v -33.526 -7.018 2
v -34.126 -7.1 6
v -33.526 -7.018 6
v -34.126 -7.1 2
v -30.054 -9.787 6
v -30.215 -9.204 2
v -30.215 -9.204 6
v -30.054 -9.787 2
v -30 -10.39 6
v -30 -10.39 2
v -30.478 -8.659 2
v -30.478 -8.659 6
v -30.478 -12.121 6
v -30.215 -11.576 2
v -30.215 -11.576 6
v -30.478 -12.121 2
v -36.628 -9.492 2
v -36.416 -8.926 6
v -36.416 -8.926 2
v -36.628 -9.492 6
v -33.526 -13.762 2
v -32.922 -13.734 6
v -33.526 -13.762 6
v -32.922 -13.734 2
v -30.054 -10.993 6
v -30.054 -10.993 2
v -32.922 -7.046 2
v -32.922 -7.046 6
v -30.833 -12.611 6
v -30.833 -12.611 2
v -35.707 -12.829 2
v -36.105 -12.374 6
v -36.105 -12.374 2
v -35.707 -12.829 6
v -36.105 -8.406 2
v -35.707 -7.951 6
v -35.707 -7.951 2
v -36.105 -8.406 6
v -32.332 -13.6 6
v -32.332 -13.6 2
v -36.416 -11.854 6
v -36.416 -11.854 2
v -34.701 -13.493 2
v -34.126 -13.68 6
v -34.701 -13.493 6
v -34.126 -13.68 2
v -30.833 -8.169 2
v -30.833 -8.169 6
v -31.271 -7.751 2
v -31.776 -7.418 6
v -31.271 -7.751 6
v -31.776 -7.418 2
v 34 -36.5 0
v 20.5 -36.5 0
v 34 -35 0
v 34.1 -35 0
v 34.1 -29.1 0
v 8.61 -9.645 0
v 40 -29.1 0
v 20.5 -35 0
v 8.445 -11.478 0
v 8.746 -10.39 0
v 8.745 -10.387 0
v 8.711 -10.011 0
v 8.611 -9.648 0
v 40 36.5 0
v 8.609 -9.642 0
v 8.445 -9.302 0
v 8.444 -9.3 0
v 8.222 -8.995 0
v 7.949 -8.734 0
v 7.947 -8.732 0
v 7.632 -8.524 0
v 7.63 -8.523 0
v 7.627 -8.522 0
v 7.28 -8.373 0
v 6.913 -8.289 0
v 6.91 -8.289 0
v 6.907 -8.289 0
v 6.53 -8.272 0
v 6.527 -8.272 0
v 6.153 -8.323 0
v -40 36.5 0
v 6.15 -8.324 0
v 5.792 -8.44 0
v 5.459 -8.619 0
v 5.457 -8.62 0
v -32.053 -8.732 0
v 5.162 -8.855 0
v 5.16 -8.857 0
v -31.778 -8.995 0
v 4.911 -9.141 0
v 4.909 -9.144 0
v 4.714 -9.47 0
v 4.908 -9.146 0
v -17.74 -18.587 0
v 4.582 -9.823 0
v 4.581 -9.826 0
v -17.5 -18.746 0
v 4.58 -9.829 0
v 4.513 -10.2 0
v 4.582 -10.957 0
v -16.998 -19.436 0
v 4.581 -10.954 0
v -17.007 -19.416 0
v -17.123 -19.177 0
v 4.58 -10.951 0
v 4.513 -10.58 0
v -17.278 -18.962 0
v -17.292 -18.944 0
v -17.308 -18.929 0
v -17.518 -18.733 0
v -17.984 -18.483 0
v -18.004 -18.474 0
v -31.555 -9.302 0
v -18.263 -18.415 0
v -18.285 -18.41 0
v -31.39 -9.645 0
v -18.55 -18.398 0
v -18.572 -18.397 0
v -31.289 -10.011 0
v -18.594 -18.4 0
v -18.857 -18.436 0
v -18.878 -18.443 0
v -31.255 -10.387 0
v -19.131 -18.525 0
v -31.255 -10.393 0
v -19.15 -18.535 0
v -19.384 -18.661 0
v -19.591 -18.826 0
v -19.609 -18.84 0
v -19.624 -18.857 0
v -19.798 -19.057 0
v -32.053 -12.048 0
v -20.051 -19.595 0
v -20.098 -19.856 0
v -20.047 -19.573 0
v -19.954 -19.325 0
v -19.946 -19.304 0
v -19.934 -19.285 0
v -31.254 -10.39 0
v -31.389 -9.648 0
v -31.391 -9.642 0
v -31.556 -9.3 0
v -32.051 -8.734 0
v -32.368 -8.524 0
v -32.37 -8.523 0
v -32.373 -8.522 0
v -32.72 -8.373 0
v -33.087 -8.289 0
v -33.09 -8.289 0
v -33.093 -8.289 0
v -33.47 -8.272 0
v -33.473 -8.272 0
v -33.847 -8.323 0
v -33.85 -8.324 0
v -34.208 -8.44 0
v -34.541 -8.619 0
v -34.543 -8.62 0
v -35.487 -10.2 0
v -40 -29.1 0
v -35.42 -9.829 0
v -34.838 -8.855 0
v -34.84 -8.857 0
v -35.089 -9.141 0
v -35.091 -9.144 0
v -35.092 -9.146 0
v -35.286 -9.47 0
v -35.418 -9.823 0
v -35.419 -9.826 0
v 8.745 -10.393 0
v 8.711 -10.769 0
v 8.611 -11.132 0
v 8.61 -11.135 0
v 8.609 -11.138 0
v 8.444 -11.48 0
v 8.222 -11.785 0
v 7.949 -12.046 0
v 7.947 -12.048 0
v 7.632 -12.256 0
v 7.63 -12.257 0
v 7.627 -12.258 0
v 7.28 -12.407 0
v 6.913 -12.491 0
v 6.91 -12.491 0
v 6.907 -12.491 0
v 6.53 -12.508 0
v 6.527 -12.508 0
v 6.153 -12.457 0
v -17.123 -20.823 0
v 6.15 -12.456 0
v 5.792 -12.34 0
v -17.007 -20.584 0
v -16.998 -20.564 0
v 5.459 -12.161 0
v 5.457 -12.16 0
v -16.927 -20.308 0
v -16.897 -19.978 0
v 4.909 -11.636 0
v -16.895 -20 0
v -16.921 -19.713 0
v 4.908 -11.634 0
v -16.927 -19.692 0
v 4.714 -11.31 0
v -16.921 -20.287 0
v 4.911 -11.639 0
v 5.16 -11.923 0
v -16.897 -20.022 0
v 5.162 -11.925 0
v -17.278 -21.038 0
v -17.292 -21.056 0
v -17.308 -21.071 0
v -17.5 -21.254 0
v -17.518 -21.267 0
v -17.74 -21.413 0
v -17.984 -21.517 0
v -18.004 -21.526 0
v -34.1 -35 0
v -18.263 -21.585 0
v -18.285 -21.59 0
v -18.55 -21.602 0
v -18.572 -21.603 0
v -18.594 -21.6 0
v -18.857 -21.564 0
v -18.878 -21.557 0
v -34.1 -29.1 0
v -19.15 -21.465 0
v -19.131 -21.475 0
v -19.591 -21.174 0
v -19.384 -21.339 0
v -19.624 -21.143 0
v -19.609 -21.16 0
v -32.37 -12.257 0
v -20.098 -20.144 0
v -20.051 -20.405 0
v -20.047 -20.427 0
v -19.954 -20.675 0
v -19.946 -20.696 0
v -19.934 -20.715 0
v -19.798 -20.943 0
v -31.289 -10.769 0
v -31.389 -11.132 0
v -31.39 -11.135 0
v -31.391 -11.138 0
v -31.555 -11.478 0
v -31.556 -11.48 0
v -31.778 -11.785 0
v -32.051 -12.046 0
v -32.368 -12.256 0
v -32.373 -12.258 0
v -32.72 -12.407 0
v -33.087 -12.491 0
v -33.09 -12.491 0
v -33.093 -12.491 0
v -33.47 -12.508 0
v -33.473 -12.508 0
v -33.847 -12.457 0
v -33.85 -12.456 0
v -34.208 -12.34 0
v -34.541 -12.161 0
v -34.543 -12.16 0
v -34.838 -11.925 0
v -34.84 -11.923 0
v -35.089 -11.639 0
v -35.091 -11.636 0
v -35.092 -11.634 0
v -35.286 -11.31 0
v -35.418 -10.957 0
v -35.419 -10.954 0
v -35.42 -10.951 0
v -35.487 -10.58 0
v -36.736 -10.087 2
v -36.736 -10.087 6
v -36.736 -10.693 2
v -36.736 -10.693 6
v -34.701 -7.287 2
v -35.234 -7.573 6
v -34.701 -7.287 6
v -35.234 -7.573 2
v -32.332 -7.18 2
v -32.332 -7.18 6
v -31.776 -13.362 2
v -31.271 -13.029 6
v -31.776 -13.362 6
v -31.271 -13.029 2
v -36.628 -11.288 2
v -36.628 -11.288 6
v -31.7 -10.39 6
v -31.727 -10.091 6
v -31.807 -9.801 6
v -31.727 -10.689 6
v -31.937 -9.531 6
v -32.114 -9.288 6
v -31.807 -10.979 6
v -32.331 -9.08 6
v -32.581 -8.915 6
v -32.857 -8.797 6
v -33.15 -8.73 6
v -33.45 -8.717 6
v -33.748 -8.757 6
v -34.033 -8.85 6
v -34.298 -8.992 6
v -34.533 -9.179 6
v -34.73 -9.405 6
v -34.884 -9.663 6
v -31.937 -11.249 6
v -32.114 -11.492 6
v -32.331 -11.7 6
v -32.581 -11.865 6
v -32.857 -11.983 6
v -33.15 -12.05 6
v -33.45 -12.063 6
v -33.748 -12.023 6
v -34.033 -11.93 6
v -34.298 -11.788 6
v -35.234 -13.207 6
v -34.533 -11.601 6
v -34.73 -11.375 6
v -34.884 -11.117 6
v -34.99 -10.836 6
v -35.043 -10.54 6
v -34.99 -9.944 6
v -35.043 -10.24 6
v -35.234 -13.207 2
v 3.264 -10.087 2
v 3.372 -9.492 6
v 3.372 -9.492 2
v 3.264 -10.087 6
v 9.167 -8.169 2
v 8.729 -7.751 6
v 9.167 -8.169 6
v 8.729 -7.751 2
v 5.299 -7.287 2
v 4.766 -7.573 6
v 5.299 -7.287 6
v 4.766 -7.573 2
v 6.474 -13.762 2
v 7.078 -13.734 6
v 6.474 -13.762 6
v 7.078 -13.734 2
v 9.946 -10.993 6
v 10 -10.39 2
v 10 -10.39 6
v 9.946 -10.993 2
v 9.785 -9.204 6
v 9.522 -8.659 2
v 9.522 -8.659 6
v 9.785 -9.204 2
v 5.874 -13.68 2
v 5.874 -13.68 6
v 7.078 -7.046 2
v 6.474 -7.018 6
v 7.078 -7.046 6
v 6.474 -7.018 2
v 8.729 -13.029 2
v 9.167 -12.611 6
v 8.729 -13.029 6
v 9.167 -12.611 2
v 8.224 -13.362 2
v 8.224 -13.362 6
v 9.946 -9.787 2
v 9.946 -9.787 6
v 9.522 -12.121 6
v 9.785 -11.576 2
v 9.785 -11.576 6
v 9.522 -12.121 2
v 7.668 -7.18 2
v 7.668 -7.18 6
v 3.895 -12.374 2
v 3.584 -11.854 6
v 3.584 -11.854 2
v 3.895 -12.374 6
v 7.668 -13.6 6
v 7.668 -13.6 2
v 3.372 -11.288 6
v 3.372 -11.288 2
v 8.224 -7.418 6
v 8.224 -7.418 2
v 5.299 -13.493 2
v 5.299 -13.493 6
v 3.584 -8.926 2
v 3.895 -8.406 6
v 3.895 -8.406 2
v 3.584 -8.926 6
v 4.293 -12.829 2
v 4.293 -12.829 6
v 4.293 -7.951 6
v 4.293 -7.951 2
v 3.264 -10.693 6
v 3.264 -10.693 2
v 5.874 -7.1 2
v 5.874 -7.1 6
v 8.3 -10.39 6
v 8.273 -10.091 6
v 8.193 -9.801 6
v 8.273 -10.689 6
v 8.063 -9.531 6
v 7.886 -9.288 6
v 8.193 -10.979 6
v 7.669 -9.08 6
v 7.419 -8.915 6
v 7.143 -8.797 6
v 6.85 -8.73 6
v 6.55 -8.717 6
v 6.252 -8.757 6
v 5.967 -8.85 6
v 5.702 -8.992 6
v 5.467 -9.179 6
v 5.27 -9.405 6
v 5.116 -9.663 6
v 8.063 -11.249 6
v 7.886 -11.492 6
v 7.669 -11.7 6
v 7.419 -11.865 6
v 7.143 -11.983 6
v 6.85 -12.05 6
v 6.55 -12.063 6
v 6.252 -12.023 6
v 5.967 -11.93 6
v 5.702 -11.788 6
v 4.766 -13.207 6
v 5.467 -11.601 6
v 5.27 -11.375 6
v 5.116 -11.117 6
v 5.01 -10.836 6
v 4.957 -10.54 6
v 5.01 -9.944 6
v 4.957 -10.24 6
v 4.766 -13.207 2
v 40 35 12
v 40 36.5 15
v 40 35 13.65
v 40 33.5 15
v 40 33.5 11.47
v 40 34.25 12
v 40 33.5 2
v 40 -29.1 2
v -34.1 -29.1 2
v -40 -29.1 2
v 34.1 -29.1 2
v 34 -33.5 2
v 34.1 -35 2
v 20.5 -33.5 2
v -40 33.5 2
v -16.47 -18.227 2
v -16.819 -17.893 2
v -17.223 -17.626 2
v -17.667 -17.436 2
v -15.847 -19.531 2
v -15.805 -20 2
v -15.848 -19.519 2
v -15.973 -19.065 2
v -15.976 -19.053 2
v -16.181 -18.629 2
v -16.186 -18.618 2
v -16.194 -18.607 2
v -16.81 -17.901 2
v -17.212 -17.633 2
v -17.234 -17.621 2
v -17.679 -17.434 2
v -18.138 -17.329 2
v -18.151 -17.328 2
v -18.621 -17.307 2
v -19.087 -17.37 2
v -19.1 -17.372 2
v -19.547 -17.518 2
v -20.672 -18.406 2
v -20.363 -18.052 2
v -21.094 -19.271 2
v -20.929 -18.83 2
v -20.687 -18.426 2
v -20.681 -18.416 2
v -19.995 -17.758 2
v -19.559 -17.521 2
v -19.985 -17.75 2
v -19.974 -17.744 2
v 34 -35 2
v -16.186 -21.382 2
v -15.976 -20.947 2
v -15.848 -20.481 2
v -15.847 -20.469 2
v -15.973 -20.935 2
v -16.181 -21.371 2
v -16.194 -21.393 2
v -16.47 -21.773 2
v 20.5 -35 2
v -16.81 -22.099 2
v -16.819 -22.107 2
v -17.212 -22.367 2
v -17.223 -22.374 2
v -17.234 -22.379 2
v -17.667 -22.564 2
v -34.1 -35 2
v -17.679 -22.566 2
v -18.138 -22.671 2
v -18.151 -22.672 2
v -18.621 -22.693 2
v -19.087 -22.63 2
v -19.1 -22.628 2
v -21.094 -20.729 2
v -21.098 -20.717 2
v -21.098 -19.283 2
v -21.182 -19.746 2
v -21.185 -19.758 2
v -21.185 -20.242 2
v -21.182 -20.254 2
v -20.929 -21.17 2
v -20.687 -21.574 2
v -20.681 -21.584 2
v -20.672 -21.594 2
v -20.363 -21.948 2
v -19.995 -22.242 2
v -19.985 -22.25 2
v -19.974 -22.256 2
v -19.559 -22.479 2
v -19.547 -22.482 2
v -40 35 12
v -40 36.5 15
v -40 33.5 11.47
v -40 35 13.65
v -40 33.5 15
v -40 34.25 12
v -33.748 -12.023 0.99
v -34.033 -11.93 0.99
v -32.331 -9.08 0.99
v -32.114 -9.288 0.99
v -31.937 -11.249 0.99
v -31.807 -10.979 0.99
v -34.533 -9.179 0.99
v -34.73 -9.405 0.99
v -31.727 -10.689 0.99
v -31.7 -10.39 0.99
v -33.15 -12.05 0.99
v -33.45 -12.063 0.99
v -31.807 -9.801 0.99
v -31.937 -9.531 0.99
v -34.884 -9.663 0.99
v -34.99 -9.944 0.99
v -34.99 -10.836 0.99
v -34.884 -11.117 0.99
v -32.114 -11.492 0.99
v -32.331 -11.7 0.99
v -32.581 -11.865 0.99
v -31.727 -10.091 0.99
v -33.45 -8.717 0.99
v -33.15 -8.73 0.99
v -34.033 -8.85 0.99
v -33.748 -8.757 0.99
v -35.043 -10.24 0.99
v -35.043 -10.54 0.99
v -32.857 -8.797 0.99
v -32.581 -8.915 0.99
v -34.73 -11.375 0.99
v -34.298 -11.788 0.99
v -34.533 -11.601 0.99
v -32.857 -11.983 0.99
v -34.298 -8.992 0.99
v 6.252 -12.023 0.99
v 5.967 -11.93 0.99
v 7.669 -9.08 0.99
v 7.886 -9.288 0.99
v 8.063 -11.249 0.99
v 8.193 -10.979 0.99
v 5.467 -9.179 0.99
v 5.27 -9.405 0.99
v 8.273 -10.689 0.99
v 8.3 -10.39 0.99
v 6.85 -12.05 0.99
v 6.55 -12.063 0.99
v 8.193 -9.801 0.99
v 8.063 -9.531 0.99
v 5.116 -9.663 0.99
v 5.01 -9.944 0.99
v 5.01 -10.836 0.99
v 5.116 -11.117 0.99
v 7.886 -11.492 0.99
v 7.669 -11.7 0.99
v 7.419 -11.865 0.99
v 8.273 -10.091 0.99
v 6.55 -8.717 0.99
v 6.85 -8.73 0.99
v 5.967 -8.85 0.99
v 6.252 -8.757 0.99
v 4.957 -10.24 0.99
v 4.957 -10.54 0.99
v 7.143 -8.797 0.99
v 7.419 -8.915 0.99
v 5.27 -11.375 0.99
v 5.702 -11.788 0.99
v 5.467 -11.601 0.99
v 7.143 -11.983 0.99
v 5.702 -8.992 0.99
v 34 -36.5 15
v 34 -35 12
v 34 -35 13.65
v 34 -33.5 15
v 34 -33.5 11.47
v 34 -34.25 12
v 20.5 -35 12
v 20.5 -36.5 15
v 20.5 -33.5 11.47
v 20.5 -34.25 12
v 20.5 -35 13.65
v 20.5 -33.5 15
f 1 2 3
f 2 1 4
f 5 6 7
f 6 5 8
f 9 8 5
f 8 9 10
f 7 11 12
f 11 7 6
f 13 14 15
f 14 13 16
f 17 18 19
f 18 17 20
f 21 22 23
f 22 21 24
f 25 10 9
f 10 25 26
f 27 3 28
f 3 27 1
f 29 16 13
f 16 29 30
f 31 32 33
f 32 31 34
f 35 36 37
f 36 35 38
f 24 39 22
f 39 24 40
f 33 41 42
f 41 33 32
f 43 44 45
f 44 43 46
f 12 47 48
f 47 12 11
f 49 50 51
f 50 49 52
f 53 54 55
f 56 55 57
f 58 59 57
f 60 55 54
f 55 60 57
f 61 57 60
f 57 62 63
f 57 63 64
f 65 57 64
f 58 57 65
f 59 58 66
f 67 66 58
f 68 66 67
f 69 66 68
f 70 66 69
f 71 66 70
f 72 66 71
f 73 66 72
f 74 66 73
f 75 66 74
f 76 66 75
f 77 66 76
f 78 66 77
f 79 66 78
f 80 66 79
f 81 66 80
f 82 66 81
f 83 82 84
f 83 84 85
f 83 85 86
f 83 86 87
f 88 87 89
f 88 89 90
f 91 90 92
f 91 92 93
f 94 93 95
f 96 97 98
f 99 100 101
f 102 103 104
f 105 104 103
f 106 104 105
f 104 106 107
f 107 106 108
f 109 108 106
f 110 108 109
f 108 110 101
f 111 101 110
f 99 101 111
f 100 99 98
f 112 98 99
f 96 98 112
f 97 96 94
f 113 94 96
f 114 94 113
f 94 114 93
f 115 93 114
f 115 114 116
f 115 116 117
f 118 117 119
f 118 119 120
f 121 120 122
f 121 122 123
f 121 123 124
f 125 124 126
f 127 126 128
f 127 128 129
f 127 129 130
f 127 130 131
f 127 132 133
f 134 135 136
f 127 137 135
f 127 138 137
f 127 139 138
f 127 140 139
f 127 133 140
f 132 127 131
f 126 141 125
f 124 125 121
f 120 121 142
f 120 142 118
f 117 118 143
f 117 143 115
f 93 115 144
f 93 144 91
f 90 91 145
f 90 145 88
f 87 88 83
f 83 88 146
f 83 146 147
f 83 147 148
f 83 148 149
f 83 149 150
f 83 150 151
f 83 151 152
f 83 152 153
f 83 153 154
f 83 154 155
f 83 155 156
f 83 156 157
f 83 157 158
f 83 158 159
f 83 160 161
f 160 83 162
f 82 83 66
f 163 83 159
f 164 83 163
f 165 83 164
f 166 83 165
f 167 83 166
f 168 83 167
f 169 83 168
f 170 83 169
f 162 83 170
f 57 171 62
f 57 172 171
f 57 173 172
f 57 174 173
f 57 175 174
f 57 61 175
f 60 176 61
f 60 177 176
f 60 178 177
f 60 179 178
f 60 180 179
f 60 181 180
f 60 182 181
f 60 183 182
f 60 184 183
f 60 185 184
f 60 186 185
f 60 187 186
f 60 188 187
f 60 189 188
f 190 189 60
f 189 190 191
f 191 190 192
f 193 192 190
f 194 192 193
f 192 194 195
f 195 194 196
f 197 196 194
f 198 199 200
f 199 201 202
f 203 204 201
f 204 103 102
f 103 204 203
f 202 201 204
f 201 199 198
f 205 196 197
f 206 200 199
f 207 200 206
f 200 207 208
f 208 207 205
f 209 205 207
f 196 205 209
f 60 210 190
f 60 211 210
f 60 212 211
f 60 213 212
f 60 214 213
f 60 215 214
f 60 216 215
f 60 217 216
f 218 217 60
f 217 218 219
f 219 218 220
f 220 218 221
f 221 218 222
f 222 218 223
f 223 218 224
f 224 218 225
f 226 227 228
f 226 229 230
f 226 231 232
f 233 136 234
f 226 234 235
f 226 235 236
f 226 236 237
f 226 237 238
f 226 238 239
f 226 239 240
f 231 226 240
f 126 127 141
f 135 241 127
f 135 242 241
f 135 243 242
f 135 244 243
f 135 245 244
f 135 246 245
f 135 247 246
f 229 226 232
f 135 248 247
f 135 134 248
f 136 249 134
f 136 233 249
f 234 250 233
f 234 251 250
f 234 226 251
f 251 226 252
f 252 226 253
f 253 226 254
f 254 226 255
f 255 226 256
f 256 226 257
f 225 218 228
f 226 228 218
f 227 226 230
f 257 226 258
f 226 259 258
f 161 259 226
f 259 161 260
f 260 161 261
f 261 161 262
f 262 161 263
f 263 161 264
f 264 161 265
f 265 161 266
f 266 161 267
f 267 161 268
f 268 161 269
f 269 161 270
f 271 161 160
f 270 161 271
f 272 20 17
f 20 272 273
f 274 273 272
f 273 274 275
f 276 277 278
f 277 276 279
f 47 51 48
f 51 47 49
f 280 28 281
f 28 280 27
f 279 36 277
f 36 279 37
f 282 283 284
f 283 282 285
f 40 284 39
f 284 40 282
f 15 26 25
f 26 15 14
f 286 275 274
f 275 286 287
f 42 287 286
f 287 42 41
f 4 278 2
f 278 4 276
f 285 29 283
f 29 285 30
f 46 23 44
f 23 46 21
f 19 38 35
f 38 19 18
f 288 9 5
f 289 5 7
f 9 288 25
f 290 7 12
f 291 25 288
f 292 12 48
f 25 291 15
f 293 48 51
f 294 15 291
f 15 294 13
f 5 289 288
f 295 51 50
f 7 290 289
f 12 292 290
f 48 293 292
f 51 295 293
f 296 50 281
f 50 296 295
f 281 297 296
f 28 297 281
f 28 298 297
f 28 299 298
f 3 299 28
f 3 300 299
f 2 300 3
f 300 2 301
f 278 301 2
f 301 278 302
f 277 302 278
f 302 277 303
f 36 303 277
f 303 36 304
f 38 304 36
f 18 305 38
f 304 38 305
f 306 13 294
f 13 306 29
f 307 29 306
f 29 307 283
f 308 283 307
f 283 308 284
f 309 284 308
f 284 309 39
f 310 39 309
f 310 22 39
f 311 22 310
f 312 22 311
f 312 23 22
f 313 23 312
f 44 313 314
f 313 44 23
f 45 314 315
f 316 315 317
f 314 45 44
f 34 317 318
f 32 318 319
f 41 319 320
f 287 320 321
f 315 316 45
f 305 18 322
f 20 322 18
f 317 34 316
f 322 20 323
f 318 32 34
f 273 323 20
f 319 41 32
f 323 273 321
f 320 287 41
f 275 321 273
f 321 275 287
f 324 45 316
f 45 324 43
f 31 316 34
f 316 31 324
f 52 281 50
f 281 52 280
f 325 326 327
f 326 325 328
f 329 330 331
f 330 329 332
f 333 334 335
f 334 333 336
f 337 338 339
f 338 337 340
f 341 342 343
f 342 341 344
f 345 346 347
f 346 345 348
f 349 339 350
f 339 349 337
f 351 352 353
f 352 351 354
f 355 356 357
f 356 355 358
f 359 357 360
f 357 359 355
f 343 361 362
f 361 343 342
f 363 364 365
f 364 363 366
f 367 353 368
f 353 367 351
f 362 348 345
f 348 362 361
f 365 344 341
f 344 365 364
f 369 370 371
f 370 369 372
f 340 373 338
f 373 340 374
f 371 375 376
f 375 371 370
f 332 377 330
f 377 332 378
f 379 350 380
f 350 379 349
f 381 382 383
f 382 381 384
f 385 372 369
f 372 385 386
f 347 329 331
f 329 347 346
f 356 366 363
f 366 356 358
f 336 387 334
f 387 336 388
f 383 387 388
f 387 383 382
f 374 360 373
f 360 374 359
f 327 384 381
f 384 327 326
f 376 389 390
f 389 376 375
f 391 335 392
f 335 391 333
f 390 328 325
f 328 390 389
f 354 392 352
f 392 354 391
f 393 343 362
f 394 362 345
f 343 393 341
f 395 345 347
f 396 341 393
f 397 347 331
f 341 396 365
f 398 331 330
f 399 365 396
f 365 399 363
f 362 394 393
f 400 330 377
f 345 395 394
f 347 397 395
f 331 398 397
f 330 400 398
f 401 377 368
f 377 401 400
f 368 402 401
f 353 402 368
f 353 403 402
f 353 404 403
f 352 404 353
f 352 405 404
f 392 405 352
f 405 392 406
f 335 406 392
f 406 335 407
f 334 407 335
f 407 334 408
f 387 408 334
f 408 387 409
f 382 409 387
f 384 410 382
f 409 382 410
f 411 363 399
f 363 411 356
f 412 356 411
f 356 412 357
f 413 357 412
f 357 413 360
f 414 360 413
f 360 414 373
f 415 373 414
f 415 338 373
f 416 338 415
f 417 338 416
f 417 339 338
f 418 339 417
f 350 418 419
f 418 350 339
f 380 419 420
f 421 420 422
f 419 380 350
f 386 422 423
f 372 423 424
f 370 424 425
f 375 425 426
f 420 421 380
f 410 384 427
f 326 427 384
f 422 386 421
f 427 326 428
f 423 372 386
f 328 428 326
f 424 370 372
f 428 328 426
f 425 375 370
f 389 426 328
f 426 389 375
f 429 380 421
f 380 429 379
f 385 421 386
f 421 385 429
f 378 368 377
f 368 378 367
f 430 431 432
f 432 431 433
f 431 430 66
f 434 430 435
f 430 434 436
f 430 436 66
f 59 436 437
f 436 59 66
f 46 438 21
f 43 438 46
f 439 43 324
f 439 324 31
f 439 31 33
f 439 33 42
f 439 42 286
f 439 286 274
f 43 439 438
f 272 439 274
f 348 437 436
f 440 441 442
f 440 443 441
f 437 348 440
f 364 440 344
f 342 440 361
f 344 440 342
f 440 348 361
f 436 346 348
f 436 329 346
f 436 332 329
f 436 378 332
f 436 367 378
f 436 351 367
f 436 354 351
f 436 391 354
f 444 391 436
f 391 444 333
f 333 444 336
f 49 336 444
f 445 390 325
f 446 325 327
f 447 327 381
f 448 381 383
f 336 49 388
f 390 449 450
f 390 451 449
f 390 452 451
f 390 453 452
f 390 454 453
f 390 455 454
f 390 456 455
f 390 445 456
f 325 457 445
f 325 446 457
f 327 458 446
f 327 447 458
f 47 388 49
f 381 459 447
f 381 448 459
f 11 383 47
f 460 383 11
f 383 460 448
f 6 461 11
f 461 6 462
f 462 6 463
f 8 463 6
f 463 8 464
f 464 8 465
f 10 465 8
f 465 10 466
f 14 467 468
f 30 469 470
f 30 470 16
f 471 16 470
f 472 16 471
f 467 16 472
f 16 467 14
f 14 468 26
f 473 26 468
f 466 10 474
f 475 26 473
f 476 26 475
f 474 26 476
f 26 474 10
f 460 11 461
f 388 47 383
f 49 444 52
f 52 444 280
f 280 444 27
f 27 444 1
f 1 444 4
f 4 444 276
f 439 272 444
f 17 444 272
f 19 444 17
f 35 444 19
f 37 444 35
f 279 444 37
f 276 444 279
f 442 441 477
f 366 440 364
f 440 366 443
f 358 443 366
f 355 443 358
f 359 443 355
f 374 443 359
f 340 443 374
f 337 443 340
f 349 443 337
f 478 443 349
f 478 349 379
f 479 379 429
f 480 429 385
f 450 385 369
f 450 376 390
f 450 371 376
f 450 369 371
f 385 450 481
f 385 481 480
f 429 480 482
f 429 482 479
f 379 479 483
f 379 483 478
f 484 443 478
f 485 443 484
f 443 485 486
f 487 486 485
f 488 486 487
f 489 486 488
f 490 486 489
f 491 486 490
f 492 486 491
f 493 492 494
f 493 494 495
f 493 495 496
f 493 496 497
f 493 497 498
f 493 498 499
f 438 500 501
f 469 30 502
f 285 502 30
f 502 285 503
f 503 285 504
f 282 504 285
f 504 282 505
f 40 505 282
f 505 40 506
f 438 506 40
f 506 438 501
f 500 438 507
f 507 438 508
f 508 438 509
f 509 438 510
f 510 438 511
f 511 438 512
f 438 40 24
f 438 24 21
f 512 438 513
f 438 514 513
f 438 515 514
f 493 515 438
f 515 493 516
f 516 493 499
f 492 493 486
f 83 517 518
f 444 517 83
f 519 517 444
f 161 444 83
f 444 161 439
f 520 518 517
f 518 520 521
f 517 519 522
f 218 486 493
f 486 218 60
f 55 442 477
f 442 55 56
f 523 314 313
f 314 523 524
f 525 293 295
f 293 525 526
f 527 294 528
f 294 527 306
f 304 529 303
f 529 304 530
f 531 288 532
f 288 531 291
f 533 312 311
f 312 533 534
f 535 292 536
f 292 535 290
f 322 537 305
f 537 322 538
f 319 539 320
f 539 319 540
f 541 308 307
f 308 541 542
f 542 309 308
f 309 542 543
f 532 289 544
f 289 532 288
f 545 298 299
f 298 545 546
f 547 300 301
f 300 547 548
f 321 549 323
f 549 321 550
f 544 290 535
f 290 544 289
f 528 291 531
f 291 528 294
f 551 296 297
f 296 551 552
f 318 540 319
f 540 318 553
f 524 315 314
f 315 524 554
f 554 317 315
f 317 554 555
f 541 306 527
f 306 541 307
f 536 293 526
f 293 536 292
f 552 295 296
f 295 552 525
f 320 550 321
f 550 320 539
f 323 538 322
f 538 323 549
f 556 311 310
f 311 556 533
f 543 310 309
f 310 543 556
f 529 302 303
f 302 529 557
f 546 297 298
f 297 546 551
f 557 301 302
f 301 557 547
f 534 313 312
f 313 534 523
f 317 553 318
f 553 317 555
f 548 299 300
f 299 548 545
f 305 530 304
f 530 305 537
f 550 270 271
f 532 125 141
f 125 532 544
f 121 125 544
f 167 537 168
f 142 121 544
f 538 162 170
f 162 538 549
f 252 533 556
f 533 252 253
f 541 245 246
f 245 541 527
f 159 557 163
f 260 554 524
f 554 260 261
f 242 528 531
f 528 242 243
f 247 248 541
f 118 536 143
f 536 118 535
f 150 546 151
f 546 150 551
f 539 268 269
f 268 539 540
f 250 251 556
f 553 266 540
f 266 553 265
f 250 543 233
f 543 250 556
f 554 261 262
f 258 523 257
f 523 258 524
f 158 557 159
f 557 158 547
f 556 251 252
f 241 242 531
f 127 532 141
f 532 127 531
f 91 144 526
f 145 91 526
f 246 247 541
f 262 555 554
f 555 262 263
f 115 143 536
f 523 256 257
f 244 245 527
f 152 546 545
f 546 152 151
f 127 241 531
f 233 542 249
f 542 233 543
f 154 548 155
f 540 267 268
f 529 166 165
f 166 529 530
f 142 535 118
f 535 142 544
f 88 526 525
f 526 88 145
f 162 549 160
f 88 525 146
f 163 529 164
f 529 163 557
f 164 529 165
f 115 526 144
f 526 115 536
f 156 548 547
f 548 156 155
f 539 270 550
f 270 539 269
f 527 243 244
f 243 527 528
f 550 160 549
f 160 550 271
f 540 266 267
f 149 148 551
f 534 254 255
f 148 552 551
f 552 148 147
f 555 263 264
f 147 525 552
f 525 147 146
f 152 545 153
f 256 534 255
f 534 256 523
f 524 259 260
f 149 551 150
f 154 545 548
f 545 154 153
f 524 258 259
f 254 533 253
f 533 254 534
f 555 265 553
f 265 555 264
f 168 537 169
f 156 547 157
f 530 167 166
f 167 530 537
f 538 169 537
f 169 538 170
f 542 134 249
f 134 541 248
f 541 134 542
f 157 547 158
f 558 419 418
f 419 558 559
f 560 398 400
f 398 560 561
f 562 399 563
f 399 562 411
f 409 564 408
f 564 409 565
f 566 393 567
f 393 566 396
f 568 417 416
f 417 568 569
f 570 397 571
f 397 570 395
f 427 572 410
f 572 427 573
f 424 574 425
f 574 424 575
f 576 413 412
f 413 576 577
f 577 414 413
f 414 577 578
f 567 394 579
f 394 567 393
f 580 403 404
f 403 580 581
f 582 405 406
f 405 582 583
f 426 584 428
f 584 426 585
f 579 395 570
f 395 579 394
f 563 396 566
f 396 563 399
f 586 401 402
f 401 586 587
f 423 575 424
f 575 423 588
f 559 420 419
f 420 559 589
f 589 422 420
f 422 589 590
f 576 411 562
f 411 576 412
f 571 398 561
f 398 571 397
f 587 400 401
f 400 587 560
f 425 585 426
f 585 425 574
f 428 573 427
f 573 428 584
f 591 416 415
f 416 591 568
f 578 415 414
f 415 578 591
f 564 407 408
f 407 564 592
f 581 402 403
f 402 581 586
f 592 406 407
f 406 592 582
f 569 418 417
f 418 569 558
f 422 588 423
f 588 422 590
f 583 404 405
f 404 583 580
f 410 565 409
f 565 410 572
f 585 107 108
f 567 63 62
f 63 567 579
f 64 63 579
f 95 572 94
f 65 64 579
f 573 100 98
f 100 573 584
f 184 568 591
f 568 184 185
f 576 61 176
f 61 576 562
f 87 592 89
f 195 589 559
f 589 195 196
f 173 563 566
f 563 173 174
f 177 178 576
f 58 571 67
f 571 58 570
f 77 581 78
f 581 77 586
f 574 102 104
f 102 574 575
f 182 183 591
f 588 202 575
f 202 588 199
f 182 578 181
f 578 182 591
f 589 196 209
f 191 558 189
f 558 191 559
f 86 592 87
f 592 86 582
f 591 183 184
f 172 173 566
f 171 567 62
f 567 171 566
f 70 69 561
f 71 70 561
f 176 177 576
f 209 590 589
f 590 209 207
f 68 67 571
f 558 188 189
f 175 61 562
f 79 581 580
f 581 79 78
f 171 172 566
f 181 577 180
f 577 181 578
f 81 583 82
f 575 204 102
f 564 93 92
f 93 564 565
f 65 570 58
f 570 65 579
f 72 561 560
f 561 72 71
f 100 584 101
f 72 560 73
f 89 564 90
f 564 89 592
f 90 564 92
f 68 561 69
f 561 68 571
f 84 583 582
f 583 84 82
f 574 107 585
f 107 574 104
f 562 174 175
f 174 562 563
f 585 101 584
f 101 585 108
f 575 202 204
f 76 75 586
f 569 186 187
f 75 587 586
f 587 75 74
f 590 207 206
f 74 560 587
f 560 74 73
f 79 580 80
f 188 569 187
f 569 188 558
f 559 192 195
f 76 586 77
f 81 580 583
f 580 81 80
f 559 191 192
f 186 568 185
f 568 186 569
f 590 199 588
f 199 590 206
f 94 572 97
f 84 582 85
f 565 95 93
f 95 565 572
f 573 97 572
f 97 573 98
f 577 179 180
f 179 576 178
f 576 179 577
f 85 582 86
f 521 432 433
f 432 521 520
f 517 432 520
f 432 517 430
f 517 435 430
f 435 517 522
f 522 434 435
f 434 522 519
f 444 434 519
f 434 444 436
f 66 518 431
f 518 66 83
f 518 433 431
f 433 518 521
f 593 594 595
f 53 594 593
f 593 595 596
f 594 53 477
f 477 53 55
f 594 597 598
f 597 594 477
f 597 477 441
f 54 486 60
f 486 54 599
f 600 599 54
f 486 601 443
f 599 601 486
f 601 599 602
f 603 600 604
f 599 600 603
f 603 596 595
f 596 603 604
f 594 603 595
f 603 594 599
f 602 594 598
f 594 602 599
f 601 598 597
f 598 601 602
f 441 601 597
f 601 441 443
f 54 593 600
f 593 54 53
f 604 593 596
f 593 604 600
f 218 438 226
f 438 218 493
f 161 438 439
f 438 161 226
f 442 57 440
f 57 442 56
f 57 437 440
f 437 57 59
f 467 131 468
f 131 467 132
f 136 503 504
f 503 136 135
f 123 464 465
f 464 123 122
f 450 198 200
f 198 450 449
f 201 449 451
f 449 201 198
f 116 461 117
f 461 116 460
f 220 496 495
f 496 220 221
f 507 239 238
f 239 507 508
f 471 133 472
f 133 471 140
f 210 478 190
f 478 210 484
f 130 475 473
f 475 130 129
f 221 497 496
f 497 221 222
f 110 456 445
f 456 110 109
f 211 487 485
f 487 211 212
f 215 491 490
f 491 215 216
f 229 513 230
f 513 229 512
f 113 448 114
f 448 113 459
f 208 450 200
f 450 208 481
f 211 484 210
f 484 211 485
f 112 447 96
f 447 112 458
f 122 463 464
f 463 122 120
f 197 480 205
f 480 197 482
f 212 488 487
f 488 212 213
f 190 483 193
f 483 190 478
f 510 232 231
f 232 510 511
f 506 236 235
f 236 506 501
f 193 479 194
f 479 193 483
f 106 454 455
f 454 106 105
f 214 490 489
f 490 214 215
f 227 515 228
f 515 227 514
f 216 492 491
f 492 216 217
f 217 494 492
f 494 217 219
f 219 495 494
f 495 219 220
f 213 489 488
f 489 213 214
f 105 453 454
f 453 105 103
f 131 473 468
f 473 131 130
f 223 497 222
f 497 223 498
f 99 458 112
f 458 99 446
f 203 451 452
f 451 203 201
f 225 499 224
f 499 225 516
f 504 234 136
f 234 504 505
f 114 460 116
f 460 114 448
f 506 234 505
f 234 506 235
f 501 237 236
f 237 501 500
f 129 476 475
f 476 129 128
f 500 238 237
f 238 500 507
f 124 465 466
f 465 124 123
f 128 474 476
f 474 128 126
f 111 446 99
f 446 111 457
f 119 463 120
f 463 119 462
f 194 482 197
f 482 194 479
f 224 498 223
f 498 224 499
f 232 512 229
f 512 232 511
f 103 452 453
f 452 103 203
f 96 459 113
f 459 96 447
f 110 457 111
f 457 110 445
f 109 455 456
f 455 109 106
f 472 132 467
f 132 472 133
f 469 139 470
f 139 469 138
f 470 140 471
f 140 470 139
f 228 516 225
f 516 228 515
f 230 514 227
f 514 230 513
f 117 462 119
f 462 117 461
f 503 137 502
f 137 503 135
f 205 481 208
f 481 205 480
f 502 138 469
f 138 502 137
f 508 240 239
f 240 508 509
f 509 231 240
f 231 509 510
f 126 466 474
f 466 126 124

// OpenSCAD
$fn = 35;

board_width = 80;
board_height = 70;
board_thickness = 1.65;
board_lift_height = 12;

boost_standoff_distance = 40;
boost_height = 37.22;
boost_width = 45.31;
boost_standoff_y_from_top = 14;
boost_board_hole_width = 53.25;
boost_board_hole_height = 40;

cutoff_for_brass_rings = 6;

module boost(pos) {
    module standoff() {
        cylinder(h=6, d=6.75);
    }
    module standoff_hole() {
        translate([0,0,-0.5]) cylinder(h=7, d=3.35);
        translate([0,0,-0.01]) cylinder(h=1, d1=4.25, d2=3.35);
    }
    module at_standoffs() {
        translate(pos)
        translate([-boost_standoff_distance/2, boost_height/2 - boost_standoff_y_from_top, 0])
            children();
        translate(pos)
        translate([+boost_standoff_distance/2, boost_height/2 - boost_standoff_y_from_top, 0])
            children();
    }
    difference() {
        union() {
            children();
            at_standoffs() standoff();
        }
        at_standoffs() standoff_hole();
    }
}

module arm(width) {
    arm_thickness = 3;
    arm_extra_height = 3;

    rotate([0,-90,180])
    linear_extrude(width, center=true)
    polygon(points=[
        [ 0                                              , -arm_thickness/2   ],
        [ board_lift_height + arm_extra_height           , -arm_thickness/2   ],
        [ board_lift_height + arm_extra_height           , +arm_thickness/2   ],
        [ board_lift_height + board_thickness            , 0                  ],
        [ board_lift_height                              , 0                  ],
        [ board_lift_height                              , +arm_thickness/2/2 ],
        [ board_lift_height - (arm_thickness/2/2)*sin(45), +arm_thickness/2   ],
        [ 0                                              , +arm_thickness/2   ],
        [ 0                                              , 0                  ],
    ]);
}

module bracket2() {
    difference() {
        union() {
            boost([
                -board_width/2 + boost_board_hole_width/2,
                -board_height/2 + boost_board_hole_height/2,
                0
            ])
            translate([0,0,2/2]) cube([board_width, board_height, 2], center=true);
            translate([0,+board_height/2,0]) arm(width=board_width);
            
            translate([
                board_width/2 - 26/2 + 6.5/2 - cutoff_for_brass_rings/2,
                -board_height/2,
                0
            ])
            rotate([0,0,180])
            arm(width=26-cutoff_for_brass_rings-6.5);
        }
        
        translate([
            +cutoff_for_brass_rings/2-board_width/2-0.1,
            +cutoff_for_brass_rings/2-board_height/2-0.1,
            0
        ])
        cube(cutoff_for_brass_rings,center=true);
        translate([
            -cutoff_for_brass_rings/2+board_width/2+0.1,
            +cutoff_for_brass_rings/2-board_height/2-0.1,
            0
        ])
        cube(cutoff_for_brass_rings,center=true);
        
        translate([-board_width/2+21.5,-board_height/2+15,-0.1])
        cylinder(h=2.2,d1=3.1,d2=5.5);
    }
}

bracket2();
